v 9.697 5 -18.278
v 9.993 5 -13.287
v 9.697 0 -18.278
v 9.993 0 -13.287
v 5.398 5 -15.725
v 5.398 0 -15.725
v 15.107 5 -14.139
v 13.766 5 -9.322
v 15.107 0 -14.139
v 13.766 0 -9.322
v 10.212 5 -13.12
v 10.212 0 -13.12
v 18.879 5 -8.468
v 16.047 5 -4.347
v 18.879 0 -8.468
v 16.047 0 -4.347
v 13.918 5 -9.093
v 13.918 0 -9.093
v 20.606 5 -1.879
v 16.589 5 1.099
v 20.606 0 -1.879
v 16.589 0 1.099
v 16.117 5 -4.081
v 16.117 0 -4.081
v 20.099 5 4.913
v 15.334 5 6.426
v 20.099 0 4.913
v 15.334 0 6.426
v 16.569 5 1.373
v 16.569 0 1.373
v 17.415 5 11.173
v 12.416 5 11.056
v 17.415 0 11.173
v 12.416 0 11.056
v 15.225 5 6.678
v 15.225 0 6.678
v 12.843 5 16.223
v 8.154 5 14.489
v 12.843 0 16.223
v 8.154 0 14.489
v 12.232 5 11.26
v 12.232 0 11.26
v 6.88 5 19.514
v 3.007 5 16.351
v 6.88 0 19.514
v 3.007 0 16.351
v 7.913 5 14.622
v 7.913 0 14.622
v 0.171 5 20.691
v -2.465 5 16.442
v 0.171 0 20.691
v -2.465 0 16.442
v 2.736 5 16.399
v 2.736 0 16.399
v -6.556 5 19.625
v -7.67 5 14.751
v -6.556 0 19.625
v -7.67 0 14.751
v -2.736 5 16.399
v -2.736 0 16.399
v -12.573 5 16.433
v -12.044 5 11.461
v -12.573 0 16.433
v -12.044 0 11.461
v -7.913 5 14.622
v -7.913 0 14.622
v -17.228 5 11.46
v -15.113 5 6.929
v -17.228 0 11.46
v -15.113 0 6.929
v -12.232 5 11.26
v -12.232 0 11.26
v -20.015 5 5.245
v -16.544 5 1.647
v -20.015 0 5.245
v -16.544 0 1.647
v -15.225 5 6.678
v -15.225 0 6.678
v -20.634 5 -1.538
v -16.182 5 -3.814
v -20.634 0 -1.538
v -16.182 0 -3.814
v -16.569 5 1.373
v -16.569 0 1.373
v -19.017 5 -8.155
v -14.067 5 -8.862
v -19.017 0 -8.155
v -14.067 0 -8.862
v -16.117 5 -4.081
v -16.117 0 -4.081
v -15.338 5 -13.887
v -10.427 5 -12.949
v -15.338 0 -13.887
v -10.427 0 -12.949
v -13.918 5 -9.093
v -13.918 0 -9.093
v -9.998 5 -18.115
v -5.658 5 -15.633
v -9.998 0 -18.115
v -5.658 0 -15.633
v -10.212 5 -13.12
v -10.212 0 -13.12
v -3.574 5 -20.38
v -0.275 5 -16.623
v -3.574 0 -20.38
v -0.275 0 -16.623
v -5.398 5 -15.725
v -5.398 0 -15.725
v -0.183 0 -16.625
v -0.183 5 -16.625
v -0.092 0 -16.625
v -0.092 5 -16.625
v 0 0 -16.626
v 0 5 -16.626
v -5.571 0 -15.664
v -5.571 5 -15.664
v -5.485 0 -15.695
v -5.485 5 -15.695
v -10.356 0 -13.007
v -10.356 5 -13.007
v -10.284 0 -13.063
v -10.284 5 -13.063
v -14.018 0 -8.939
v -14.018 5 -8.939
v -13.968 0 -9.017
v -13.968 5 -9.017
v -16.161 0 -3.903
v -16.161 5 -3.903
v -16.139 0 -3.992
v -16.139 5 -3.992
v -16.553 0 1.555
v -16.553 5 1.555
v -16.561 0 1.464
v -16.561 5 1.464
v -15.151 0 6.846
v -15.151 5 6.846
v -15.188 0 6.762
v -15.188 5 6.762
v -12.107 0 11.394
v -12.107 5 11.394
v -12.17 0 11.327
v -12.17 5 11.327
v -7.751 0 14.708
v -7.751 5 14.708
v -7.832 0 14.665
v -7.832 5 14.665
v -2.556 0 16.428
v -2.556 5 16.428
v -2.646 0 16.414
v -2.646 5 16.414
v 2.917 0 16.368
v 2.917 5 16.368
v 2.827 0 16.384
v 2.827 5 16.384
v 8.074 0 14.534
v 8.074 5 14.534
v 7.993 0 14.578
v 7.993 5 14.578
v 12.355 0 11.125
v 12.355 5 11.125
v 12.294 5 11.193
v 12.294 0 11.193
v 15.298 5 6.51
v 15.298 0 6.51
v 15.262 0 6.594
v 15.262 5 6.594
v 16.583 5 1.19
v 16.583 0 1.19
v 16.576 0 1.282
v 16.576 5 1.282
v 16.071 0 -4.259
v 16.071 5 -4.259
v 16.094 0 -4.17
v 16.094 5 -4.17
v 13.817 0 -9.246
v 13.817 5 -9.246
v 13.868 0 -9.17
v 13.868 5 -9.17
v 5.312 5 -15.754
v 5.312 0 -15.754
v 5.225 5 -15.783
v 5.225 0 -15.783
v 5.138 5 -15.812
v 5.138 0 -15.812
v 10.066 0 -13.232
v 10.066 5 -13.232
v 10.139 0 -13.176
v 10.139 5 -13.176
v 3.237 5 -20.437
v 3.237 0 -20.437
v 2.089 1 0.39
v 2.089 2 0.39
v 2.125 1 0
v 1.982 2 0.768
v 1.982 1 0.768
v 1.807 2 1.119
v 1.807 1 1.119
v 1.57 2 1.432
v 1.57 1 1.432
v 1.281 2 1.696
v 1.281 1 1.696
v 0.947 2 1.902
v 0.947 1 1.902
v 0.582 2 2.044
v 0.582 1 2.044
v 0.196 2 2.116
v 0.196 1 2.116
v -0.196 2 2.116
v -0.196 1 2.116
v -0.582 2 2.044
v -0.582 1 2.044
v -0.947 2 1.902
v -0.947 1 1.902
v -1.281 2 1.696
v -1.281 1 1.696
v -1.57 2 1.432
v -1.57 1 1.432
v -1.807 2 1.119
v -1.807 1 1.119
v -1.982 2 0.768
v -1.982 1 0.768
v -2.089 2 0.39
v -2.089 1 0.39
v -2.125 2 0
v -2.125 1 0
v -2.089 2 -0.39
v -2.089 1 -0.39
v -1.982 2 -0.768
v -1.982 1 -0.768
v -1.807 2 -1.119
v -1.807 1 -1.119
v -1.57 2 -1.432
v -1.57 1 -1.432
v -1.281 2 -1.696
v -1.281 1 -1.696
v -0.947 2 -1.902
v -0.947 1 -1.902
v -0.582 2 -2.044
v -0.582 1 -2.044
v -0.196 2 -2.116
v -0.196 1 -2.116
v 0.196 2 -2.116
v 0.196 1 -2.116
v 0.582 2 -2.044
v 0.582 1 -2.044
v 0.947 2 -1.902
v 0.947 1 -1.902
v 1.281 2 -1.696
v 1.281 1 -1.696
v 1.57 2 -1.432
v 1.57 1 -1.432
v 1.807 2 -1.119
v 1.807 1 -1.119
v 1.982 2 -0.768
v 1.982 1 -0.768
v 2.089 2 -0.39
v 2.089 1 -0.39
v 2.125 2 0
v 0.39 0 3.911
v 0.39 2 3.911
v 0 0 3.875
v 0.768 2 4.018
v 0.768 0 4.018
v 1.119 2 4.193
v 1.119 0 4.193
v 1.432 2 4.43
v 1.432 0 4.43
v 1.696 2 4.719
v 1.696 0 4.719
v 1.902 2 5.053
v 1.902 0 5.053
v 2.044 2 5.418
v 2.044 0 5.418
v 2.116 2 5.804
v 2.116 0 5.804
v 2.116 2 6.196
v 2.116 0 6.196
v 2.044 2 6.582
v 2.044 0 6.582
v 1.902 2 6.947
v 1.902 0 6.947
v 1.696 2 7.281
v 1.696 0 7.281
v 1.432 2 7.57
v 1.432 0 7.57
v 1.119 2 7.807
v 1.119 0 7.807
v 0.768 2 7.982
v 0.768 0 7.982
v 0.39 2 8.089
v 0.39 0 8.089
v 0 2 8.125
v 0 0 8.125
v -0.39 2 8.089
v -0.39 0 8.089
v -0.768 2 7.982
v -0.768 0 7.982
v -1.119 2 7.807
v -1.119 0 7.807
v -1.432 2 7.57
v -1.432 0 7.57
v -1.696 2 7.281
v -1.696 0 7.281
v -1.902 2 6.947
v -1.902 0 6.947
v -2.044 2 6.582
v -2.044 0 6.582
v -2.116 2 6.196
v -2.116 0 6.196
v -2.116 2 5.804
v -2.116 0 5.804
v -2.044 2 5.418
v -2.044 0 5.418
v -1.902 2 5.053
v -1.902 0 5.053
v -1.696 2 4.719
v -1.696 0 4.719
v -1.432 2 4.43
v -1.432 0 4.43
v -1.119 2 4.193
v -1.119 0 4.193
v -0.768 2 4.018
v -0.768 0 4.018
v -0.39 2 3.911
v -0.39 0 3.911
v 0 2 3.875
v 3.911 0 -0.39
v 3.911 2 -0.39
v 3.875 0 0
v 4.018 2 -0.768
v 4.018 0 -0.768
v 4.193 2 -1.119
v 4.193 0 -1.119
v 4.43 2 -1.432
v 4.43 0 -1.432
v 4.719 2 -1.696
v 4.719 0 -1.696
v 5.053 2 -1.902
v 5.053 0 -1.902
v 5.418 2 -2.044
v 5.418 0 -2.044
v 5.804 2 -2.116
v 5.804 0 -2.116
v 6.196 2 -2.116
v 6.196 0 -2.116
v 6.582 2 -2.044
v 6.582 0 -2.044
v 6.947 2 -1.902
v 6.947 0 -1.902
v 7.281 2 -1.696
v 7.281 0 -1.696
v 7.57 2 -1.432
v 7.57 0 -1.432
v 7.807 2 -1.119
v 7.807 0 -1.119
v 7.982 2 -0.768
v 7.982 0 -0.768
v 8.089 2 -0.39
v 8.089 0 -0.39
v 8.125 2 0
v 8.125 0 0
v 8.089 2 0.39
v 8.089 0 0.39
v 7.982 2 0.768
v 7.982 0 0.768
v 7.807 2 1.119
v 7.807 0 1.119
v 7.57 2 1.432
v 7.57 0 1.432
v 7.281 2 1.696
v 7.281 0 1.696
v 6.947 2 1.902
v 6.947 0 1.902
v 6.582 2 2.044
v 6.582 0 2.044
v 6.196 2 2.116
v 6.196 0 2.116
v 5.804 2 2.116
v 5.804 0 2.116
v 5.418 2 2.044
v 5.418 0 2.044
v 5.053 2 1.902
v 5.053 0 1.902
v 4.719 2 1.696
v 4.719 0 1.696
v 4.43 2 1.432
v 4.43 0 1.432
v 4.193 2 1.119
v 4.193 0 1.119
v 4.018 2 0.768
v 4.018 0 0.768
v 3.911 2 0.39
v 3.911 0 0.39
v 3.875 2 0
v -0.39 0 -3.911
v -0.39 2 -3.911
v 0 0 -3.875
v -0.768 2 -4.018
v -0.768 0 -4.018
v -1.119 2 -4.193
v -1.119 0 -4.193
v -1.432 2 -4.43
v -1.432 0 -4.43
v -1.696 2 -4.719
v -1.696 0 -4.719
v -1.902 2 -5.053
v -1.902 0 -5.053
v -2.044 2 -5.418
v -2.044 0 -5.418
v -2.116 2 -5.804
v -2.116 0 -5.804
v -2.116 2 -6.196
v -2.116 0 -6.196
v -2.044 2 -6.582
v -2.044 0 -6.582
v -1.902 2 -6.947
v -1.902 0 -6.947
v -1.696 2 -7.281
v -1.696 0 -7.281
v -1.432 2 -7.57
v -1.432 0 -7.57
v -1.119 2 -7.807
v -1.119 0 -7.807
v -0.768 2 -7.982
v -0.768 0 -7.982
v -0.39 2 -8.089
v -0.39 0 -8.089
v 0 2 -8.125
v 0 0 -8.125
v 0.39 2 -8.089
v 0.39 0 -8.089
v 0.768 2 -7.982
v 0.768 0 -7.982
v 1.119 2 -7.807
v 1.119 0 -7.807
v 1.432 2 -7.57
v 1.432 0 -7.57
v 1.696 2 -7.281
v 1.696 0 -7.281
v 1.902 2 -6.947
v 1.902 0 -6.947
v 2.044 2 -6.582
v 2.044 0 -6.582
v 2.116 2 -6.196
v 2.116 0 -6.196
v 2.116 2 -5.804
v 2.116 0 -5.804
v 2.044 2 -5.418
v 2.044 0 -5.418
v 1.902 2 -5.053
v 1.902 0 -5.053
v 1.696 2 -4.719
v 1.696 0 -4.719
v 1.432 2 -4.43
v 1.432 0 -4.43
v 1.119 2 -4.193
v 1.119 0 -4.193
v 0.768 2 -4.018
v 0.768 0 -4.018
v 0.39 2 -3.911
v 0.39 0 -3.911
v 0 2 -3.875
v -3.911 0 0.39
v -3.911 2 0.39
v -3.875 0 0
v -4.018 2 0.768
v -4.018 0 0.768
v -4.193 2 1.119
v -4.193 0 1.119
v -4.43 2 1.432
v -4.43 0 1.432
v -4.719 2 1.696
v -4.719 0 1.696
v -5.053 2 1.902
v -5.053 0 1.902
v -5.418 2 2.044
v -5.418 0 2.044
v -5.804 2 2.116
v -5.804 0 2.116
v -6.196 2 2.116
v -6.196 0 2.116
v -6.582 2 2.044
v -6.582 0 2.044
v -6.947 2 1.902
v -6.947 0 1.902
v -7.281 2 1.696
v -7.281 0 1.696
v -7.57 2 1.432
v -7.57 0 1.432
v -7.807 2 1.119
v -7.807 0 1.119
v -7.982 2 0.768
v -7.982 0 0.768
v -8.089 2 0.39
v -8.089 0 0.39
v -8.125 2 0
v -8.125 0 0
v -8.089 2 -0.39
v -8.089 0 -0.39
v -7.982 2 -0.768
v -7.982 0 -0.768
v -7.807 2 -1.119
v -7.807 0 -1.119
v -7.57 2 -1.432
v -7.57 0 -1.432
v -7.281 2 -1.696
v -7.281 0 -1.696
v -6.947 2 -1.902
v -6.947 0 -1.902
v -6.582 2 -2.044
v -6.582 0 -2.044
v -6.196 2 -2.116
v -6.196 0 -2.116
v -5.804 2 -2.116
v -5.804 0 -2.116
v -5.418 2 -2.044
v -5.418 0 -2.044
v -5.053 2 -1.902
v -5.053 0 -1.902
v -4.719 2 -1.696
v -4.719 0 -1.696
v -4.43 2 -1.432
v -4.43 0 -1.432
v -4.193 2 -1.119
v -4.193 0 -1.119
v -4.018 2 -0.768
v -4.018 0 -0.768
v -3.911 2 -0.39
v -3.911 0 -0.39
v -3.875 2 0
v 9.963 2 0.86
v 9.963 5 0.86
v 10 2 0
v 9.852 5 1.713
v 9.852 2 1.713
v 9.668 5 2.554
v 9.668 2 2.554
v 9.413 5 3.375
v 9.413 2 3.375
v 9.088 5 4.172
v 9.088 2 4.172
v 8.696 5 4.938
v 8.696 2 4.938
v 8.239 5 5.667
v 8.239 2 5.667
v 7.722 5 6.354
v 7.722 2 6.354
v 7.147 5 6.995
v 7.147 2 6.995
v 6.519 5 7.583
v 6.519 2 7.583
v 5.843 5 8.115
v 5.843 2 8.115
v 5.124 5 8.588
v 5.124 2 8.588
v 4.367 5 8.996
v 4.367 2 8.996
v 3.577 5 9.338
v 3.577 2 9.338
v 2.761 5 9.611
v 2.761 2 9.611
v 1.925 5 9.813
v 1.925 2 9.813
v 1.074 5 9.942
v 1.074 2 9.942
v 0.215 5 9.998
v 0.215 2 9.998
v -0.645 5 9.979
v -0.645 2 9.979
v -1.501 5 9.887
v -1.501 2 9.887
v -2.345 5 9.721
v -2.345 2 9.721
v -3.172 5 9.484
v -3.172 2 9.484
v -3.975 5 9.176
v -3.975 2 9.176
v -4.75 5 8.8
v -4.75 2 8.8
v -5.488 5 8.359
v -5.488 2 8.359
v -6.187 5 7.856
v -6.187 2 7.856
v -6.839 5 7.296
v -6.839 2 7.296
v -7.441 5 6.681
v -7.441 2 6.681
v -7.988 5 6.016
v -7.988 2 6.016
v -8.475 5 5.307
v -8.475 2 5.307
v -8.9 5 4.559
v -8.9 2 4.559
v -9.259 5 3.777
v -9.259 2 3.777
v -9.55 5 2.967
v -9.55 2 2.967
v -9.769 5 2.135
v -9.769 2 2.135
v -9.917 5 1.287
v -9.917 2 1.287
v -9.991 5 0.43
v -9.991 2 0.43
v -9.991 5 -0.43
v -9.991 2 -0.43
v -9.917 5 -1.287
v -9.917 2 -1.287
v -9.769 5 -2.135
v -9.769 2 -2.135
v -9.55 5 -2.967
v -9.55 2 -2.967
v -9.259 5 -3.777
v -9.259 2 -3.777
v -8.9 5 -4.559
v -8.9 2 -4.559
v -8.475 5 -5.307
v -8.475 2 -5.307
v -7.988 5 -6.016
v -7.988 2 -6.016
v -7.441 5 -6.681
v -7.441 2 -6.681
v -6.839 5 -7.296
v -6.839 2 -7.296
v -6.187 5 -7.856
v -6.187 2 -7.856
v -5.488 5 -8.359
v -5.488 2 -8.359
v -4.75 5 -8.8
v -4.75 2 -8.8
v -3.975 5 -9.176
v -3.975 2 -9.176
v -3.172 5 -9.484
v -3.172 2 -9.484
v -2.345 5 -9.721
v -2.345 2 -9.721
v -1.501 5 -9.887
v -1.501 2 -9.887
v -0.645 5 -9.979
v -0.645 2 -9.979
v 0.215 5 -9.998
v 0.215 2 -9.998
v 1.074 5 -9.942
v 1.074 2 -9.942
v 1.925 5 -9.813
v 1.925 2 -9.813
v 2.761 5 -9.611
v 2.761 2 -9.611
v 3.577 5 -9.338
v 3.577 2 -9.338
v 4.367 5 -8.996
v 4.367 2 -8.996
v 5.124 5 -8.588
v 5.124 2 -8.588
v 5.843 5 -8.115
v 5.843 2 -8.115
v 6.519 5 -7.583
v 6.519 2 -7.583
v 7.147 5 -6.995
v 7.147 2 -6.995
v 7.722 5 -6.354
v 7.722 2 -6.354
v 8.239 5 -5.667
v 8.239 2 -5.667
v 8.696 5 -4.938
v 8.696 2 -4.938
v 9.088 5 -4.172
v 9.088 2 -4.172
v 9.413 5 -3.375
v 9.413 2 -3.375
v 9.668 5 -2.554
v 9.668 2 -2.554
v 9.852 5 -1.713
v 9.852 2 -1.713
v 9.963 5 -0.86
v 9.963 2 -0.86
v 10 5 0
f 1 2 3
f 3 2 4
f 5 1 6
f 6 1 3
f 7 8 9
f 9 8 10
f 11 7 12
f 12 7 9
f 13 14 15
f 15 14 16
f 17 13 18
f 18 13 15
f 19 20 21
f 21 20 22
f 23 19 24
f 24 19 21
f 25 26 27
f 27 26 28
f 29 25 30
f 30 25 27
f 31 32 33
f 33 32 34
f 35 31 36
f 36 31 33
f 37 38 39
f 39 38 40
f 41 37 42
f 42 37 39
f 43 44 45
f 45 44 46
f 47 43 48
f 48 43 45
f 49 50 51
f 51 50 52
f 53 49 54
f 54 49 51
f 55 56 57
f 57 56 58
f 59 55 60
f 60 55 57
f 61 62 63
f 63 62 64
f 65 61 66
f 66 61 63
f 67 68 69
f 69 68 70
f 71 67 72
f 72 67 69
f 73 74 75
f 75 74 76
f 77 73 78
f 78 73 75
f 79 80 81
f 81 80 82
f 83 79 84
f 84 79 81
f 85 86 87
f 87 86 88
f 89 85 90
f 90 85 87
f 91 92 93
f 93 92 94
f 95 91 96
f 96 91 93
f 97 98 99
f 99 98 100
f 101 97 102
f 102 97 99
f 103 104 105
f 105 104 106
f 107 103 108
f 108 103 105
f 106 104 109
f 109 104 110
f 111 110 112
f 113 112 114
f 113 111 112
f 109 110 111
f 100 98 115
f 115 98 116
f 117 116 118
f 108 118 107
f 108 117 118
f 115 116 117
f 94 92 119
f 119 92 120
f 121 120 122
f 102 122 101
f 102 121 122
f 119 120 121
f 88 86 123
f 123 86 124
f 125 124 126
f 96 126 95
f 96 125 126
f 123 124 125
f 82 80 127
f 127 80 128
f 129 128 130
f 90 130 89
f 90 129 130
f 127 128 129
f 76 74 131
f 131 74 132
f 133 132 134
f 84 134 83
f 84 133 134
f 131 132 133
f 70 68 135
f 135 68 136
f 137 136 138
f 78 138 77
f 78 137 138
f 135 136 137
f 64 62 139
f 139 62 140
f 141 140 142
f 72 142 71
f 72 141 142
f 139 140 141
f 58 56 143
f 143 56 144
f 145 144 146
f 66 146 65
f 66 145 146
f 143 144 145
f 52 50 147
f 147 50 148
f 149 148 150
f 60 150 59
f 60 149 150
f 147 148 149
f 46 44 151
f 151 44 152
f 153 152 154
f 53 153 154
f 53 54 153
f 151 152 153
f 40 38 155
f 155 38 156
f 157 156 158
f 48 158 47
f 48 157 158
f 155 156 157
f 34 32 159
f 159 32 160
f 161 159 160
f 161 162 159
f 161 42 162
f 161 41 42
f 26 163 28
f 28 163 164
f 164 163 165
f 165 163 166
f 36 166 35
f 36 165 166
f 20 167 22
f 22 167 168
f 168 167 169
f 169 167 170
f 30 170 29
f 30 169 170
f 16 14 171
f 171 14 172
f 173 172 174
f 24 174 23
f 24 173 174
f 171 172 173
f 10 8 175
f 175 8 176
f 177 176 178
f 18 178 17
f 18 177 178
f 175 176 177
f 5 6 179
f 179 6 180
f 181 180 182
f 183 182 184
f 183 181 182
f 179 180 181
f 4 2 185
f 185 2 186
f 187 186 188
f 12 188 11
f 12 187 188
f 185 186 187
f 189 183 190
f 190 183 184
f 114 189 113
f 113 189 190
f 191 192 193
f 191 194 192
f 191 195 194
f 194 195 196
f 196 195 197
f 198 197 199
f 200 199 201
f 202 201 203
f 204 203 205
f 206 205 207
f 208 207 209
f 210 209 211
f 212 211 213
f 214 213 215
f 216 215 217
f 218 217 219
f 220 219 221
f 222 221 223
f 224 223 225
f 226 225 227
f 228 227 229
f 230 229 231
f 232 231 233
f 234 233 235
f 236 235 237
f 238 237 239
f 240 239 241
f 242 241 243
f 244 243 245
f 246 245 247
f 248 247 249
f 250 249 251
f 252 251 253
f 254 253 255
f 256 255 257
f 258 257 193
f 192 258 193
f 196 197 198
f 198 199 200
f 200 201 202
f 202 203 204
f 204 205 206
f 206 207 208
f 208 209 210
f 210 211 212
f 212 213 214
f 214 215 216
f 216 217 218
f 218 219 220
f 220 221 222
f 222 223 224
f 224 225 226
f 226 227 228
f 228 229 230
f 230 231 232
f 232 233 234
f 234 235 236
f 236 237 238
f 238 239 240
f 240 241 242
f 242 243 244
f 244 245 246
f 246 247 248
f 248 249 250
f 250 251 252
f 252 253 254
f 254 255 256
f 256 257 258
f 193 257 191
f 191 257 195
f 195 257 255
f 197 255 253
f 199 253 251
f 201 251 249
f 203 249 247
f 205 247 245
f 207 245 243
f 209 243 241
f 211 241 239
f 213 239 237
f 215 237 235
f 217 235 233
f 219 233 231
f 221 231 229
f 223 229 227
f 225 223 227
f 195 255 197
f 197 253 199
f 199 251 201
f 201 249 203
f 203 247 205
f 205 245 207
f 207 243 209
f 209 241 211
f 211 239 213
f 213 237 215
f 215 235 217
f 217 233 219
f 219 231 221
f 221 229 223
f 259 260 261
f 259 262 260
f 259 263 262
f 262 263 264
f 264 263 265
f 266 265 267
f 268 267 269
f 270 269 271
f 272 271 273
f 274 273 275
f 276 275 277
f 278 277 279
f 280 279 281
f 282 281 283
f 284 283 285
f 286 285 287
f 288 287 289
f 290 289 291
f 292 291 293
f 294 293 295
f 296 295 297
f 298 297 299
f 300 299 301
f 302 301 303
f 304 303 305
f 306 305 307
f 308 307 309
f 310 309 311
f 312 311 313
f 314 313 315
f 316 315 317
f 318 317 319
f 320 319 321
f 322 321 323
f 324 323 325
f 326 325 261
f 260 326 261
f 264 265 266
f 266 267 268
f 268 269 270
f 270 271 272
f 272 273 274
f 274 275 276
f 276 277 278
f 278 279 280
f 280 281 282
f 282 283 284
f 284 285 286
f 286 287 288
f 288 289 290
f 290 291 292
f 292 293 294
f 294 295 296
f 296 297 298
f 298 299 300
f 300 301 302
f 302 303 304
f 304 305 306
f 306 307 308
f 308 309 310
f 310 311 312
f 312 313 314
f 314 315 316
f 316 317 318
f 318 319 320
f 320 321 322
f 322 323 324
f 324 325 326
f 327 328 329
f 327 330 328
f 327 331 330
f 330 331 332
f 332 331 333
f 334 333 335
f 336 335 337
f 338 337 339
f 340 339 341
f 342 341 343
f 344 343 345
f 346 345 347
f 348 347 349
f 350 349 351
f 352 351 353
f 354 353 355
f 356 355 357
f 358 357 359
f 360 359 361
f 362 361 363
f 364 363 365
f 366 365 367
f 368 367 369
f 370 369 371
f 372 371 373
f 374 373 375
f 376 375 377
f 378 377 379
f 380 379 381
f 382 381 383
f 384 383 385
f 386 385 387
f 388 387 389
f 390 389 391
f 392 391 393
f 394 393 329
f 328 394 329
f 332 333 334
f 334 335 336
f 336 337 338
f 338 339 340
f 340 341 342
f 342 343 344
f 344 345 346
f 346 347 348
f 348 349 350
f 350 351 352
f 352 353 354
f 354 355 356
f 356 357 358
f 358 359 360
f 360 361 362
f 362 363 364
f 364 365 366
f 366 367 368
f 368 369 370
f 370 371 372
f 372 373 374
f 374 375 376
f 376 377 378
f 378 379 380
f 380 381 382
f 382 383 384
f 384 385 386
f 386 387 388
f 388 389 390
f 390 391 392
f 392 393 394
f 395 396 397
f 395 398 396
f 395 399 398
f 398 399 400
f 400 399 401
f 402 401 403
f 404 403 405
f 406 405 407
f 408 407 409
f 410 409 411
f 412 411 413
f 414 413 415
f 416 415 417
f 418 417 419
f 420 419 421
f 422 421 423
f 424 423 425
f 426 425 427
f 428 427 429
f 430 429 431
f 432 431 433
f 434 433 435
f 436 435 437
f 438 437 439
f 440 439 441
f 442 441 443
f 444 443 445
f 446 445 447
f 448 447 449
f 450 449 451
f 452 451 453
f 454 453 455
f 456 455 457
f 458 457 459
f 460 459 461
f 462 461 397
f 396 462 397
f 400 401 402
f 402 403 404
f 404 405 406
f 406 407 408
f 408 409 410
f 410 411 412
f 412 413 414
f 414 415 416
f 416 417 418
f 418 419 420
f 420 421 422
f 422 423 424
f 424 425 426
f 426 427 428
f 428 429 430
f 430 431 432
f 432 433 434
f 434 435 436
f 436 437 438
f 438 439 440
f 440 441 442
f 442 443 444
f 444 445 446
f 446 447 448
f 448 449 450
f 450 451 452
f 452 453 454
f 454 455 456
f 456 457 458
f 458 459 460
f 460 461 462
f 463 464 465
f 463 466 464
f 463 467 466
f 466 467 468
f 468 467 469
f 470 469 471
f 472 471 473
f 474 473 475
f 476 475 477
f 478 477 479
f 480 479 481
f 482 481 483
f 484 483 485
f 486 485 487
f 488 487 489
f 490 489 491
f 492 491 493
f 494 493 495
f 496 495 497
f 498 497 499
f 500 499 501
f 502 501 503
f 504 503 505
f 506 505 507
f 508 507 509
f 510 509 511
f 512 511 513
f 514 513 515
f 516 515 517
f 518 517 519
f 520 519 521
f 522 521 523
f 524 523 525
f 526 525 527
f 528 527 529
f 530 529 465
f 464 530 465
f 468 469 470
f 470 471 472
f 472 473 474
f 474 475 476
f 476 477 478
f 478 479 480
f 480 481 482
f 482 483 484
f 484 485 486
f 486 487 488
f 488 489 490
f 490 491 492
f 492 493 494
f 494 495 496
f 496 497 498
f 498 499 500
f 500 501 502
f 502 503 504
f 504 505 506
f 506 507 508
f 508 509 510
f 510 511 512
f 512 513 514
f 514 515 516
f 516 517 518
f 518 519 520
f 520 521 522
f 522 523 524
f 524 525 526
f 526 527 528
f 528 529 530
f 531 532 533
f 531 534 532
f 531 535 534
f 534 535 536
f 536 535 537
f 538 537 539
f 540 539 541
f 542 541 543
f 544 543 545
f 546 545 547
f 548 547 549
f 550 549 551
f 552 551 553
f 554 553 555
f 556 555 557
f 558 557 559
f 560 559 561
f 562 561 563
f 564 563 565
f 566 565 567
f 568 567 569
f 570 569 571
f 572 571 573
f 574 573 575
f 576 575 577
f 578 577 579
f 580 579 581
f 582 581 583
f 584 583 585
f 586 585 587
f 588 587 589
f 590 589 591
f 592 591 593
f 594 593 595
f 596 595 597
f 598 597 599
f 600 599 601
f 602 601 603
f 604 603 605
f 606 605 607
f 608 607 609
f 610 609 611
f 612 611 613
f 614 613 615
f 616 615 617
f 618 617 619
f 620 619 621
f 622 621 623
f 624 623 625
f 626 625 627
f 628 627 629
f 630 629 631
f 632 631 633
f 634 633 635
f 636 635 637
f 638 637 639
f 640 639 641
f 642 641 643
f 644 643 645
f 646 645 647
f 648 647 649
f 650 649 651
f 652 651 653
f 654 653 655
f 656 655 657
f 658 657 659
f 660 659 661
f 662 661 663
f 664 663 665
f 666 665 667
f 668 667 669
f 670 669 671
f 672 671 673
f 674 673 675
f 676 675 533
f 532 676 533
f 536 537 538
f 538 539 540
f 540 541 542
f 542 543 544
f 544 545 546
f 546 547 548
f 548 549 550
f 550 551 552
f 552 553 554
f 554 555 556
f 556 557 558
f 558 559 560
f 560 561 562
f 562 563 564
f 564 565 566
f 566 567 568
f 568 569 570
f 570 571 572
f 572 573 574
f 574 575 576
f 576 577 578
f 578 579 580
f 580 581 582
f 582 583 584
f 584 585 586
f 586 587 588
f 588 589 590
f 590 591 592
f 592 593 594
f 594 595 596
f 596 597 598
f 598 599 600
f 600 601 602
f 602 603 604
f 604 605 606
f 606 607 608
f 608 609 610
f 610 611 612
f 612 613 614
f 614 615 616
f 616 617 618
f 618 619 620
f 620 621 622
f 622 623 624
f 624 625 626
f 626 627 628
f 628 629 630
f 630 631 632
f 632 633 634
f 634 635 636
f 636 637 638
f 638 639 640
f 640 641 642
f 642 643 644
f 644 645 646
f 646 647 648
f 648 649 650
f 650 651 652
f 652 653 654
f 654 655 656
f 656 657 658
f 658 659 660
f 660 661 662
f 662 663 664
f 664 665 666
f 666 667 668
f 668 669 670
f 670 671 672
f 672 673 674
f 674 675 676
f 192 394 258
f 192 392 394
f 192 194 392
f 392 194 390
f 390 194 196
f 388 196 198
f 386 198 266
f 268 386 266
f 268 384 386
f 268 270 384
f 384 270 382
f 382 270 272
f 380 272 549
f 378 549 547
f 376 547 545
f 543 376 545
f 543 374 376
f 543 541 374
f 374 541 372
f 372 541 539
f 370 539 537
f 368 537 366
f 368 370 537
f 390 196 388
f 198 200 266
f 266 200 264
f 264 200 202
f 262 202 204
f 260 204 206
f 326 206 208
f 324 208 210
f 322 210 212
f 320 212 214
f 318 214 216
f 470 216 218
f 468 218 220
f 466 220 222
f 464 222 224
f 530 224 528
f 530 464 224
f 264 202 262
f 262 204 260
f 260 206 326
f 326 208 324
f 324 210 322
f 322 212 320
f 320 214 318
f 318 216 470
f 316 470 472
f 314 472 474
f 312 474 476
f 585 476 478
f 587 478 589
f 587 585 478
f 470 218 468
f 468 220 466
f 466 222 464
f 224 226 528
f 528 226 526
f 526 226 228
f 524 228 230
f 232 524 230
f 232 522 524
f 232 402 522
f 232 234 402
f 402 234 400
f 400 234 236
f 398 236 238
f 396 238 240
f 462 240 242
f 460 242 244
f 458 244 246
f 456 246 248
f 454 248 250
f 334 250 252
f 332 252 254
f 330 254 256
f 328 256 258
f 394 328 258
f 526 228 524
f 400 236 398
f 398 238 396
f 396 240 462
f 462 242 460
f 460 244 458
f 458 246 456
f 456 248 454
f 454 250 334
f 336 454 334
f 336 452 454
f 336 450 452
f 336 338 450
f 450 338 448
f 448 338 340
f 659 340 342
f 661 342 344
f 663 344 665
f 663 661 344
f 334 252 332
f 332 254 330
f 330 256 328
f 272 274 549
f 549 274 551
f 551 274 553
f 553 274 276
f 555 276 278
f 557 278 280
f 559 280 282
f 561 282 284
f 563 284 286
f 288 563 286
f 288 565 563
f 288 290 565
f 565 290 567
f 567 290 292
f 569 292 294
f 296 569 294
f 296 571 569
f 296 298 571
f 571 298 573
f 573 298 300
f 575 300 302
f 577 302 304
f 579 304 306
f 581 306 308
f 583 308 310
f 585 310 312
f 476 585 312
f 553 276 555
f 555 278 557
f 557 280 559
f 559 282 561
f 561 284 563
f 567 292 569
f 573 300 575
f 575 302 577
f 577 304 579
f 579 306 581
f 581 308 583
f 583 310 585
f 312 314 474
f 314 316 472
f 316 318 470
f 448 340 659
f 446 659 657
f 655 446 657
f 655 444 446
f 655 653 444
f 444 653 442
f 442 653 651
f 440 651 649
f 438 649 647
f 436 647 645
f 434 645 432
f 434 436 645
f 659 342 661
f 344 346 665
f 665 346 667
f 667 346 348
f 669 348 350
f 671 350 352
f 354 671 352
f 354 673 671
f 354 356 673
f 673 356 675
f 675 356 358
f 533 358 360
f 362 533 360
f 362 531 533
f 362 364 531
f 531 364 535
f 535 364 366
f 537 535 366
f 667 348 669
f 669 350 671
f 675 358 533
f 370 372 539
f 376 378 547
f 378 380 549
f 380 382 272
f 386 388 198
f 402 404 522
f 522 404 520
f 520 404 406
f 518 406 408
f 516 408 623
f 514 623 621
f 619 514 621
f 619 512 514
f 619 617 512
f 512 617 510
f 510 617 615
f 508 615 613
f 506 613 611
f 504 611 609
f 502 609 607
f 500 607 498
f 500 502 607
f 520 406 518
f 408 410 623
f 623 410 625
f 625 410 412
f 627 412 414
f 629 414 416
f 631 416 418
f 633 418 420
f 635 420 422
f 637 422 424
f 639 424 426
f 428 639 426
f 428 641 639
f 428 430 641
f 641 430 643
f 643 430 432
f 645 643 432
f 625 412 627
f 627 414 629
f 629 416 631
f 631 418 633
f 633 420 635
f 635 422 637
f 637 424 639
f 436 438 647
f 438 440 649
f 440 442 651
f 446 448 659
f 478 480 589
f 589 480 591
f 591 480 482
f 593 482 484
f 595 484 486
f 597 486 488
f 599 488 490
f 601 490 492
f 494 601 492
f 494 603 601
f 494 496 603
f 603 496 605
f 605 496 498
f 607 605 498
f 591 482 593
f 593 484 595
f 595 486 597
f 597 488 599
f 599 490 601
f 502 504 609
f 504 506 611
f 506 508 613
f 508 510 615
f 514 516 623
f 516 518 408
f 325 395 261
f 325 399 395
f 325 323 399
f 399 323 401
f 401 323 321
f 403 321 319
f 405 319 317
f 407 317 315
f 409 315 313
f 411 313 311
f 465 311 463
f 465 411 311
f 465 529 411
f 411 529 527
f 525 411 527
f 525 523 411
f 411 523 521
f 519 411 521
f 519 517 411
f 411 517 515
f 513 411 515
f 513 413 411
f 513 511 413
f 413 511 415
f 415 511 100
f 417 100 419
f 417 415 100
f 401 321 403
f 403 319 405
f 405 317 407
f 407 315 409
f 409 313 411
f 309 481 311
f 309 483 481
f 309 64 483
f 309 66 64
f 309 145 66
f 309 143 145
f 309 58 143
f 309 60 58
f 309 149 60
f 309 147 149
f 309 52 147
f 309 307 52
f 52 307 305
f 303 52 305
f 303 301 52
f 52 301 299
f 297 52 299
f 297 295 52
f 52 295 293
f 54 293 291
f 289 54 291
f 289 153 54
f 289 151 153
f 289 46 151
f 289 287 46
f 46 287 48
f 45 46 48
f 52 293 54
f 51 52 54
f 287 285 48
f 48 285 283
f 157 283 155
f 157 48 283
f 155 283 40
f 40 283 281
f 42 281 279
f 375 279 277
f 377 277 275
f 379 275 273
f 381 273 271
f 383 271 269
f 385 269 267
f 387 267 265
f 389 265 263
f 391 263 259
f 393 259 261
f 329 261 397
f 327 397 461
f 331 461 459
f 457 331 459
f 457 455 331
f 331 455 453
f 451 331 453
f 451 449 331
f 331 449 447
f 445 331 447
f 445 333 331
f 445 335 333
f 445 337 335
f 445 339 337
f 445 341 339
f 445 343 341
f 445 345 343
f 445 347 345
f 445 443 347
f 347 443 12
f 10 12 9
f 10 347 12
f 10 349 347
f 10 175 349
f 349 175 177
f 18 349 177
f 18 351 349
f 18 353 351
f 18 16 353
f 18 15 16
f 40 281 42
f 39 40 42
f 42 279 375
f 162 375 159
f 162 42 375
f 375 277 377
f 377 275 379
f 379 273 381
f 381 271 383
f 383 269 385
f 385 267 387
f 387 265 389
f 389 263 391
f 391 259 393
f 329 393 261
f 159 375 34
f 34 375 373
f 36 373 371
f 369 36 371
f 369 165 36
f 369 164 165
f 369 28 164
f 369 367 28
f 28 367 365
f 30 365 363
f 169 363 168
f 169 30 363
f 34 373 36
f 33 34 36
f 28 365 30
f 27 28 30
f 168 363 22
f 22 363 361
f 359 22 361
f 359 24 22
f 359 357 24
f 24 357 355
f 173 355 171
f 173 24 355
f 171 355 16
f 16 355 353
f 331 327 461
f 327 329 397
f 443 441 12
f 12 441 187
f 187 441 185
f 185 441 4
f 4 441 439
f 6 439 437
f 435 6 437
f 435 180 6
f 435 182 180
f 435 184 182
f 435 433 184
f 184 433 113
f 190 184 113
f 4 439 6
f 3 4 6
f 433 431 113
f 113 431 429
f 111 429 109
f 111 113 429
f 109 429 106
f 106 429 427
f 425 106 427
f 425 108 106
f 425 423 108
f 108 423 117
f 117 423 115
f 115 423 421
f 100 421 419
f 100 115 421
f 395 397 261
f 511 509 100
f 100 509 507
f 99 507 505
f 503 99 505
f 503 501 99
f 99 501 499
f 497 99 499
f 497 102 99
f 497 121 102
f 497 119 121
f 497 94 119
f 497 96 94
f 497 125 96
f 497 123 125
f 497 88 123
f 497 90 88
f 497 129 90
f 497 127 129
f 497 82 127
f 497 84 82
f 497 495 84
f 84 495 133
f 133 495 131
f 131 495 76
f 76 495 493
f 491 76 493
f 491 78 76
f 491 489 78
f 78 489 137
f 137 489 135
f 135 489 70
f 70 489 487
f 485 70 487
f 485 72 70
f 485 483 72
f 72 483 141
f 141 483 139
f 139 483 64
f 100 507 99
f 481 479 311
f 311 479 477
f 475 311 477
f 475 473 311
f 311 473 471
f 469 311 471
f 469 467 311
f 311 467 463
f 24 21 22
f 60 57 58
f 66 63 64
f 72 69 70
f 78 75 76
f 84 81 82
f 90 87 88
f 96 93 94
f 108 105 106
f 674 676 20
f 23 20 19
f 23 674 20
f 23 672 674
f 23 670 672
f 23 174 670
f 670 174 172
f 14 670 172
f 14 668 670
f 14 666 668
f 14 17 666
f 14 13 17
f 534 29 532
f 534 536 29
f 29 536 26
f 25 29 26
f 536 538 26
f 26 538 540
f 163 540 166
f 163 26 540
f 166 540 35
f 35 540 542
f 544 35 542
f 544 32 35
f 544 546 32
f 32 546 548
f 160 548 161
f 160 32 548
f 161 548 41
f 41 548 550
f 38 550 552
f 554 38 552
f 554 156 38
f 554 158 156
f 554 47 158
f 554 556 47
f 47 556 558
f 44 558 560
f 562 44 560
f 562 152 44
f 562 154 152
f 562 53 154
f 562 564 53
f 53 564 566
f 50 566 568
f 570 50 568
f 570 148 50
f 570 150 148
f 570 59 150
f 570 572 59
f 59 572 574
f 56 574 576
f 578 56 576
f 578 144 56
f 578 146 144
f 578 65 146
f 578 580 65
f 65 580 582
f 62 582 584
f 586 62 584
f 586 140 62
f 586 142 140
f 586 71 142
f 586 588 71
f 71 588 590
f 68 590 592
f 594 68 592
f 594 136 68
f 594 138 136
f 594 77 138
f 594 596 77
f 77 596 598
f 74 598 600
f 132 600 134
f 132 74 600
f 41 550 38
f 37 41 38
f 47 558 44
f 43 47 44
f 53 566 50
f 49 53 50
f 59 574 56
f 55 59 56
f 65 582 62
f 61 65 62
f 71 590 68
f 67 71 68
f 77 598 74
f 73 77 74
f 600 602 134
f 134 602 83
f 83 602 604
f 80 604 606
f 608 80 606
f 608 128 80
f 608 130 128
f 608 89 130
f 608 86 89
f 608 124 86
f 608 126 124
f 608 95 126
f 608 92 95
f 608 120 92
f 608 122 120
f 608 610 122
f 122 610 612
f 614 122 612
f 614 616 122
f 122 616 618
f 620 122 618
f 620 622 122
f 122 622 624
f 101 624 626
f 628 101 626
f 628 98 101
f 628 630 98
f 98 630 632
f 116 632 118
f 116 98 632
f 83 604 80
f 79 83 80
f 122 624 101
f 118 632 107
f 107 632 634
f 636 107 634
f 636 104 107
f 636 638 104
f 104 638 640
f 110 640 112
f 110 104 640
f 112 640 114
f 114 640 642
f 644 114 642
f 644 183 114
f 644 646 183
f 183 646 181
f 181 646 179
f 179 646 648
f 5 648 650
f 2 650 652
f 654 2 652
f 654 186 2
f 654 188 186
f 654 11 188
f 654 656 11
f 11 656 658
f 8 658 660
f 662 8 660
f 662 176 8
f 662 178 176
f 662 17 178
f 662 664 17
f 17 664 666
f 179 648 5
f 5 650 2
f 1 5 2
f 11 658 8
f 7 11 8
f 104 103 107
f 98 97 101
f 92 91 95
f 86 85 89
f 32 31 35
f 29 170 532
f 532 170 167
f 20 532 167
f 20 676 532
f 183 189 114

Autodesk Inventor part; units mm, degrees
ref_plane "YZ Plane" through (0, 0, 0) normal (1, 0, 0) x (0, 1, 0)
ref_plane "XZ Plane" through (0, 0, 0) normal (0, 1, 0) x (-1, 0, 0)
ref_plane "XY Plane" through (0, 0, 0) normal (0, 0, 1) x (1, 0, 0)
sketch "Sketch1" plane through (0, 0, 0) normal (0, 1, 0) x (-1, 0, 0)
  circle A0 centre (0, 0) radius 16.6257
  dimension "d0" = 33.2513
extrude "Extrusion1" add sketch "Sketch1" along normal blind 5
sketch "Sketch2" plane through (0, 5, 0) normal (0, 1, 0) x (1, 0, 0)
  circle A0 centre (0, 0) radius 10
  dimension "d3" = 20
extrude "Extrusion2" cut sketch "Sketch2" against normal blind 3
sketch "Sketch3" plane through (0, 2, 0) normal (0, 1, 0) x (1, 0, 0)
  circle A0 centre (-6, 0) radius 2.125
  circle A1 centre (-6, 0) radius 2.125
  point P0 (0, 0)
  dimension "d7" = 4.25
extrude "Extrusion3" cut sketch "Sketch3" against normal through all
pattern_circular "Circular Pattern1" count 4 over 360 about axis through (0, 5, 0) along (0, -1, 0) of "Extrusion3"
sketch "Sketch4" plane through (0, 2, 0) normal (0, 1, 0) x (1, 0, 0)
  circle A0 centre (0, 0) radius 2.125
  dimension "d13" = 4.25
extrude "Extrusion4" cut sketch "Sketch4" against normal blind 1
sketch "Sketch6" plane through (0, 5, 0) normal (0, 1, 0) x (1, 0, 0)
  arc A0 (5.4078, 16.6435) -> (0, 17.5) centre (0, 0) ccw
  line L0 (0, 0) -> (5.4078, 16.6435) construction
  line L1 (0, 0) -> (0, 17.5) construction
  line L2 (0, 0) -> (4.3015, 27.1585)
  line L3 (0, 0) -> (27.497, 0) construction
  arc A1 (5.4078, 16.6435) -> (0, 17.5) centre (0, 0) ccw
  dimension "d16" = 18
  dimension "d17" = 81
sketch "Sketch7" plane through (0, 5, 0) normal (0, 1, 0) x (1, 0, 0)
  circle A0 centre (0, 0) radius 16.6257 projected
  arc A1 (5.1376, 15.8119) -> (0, 16.6257) centre (0, 0) ccw
  line L0 (0, 0) -> (5.1376, 15.8119) construction
  line L1 (0, 0) -> (0, 16.6257) construction
  line L2 (0, 0) -> (4.2807, 27.027)
  line L3 (0, 0) -> (27.3639, 0) construction
  line L4 (0, 16.6257) -> (3.2368, 20.4365)
  line L5 (3.2368, 20.4365) -> (5.1376, 15.8119)
  dimension "d18" = 18
  dimension "d19" = 81
  dimension "d20" = 5
extrude "Extrusion5" add sketch "Sketch7" against normal blind 5 contours A0 L2 L5 | L4 L2 A0
pattern_circular "Circular Pattern2" count 19 over 360 about axis through (0, 0, 0) along (0, 1, 0) of "Extrusion5"
sketch "Sketch8" plane through (0, 5, 0) normal (0, 1, 0) x (1, 0, 0)
  point P0 (0, 0)
sketch "Sketch9" plane through (0, 5, 0) normal (0, 1, 0) x (1, 0, 0)
  arc A0 (-12.044, -11.4609) -> (-7.9129, -14.6218) centre (0, 0) ccw
  line L0 (-7.9129, -14.6218) -> (-12.5734, -16.4328)
  line L1 (-7.9129, -14.6218) -> (-12.5734, -16.4328) projected
properties part number "SmallGearV2"
